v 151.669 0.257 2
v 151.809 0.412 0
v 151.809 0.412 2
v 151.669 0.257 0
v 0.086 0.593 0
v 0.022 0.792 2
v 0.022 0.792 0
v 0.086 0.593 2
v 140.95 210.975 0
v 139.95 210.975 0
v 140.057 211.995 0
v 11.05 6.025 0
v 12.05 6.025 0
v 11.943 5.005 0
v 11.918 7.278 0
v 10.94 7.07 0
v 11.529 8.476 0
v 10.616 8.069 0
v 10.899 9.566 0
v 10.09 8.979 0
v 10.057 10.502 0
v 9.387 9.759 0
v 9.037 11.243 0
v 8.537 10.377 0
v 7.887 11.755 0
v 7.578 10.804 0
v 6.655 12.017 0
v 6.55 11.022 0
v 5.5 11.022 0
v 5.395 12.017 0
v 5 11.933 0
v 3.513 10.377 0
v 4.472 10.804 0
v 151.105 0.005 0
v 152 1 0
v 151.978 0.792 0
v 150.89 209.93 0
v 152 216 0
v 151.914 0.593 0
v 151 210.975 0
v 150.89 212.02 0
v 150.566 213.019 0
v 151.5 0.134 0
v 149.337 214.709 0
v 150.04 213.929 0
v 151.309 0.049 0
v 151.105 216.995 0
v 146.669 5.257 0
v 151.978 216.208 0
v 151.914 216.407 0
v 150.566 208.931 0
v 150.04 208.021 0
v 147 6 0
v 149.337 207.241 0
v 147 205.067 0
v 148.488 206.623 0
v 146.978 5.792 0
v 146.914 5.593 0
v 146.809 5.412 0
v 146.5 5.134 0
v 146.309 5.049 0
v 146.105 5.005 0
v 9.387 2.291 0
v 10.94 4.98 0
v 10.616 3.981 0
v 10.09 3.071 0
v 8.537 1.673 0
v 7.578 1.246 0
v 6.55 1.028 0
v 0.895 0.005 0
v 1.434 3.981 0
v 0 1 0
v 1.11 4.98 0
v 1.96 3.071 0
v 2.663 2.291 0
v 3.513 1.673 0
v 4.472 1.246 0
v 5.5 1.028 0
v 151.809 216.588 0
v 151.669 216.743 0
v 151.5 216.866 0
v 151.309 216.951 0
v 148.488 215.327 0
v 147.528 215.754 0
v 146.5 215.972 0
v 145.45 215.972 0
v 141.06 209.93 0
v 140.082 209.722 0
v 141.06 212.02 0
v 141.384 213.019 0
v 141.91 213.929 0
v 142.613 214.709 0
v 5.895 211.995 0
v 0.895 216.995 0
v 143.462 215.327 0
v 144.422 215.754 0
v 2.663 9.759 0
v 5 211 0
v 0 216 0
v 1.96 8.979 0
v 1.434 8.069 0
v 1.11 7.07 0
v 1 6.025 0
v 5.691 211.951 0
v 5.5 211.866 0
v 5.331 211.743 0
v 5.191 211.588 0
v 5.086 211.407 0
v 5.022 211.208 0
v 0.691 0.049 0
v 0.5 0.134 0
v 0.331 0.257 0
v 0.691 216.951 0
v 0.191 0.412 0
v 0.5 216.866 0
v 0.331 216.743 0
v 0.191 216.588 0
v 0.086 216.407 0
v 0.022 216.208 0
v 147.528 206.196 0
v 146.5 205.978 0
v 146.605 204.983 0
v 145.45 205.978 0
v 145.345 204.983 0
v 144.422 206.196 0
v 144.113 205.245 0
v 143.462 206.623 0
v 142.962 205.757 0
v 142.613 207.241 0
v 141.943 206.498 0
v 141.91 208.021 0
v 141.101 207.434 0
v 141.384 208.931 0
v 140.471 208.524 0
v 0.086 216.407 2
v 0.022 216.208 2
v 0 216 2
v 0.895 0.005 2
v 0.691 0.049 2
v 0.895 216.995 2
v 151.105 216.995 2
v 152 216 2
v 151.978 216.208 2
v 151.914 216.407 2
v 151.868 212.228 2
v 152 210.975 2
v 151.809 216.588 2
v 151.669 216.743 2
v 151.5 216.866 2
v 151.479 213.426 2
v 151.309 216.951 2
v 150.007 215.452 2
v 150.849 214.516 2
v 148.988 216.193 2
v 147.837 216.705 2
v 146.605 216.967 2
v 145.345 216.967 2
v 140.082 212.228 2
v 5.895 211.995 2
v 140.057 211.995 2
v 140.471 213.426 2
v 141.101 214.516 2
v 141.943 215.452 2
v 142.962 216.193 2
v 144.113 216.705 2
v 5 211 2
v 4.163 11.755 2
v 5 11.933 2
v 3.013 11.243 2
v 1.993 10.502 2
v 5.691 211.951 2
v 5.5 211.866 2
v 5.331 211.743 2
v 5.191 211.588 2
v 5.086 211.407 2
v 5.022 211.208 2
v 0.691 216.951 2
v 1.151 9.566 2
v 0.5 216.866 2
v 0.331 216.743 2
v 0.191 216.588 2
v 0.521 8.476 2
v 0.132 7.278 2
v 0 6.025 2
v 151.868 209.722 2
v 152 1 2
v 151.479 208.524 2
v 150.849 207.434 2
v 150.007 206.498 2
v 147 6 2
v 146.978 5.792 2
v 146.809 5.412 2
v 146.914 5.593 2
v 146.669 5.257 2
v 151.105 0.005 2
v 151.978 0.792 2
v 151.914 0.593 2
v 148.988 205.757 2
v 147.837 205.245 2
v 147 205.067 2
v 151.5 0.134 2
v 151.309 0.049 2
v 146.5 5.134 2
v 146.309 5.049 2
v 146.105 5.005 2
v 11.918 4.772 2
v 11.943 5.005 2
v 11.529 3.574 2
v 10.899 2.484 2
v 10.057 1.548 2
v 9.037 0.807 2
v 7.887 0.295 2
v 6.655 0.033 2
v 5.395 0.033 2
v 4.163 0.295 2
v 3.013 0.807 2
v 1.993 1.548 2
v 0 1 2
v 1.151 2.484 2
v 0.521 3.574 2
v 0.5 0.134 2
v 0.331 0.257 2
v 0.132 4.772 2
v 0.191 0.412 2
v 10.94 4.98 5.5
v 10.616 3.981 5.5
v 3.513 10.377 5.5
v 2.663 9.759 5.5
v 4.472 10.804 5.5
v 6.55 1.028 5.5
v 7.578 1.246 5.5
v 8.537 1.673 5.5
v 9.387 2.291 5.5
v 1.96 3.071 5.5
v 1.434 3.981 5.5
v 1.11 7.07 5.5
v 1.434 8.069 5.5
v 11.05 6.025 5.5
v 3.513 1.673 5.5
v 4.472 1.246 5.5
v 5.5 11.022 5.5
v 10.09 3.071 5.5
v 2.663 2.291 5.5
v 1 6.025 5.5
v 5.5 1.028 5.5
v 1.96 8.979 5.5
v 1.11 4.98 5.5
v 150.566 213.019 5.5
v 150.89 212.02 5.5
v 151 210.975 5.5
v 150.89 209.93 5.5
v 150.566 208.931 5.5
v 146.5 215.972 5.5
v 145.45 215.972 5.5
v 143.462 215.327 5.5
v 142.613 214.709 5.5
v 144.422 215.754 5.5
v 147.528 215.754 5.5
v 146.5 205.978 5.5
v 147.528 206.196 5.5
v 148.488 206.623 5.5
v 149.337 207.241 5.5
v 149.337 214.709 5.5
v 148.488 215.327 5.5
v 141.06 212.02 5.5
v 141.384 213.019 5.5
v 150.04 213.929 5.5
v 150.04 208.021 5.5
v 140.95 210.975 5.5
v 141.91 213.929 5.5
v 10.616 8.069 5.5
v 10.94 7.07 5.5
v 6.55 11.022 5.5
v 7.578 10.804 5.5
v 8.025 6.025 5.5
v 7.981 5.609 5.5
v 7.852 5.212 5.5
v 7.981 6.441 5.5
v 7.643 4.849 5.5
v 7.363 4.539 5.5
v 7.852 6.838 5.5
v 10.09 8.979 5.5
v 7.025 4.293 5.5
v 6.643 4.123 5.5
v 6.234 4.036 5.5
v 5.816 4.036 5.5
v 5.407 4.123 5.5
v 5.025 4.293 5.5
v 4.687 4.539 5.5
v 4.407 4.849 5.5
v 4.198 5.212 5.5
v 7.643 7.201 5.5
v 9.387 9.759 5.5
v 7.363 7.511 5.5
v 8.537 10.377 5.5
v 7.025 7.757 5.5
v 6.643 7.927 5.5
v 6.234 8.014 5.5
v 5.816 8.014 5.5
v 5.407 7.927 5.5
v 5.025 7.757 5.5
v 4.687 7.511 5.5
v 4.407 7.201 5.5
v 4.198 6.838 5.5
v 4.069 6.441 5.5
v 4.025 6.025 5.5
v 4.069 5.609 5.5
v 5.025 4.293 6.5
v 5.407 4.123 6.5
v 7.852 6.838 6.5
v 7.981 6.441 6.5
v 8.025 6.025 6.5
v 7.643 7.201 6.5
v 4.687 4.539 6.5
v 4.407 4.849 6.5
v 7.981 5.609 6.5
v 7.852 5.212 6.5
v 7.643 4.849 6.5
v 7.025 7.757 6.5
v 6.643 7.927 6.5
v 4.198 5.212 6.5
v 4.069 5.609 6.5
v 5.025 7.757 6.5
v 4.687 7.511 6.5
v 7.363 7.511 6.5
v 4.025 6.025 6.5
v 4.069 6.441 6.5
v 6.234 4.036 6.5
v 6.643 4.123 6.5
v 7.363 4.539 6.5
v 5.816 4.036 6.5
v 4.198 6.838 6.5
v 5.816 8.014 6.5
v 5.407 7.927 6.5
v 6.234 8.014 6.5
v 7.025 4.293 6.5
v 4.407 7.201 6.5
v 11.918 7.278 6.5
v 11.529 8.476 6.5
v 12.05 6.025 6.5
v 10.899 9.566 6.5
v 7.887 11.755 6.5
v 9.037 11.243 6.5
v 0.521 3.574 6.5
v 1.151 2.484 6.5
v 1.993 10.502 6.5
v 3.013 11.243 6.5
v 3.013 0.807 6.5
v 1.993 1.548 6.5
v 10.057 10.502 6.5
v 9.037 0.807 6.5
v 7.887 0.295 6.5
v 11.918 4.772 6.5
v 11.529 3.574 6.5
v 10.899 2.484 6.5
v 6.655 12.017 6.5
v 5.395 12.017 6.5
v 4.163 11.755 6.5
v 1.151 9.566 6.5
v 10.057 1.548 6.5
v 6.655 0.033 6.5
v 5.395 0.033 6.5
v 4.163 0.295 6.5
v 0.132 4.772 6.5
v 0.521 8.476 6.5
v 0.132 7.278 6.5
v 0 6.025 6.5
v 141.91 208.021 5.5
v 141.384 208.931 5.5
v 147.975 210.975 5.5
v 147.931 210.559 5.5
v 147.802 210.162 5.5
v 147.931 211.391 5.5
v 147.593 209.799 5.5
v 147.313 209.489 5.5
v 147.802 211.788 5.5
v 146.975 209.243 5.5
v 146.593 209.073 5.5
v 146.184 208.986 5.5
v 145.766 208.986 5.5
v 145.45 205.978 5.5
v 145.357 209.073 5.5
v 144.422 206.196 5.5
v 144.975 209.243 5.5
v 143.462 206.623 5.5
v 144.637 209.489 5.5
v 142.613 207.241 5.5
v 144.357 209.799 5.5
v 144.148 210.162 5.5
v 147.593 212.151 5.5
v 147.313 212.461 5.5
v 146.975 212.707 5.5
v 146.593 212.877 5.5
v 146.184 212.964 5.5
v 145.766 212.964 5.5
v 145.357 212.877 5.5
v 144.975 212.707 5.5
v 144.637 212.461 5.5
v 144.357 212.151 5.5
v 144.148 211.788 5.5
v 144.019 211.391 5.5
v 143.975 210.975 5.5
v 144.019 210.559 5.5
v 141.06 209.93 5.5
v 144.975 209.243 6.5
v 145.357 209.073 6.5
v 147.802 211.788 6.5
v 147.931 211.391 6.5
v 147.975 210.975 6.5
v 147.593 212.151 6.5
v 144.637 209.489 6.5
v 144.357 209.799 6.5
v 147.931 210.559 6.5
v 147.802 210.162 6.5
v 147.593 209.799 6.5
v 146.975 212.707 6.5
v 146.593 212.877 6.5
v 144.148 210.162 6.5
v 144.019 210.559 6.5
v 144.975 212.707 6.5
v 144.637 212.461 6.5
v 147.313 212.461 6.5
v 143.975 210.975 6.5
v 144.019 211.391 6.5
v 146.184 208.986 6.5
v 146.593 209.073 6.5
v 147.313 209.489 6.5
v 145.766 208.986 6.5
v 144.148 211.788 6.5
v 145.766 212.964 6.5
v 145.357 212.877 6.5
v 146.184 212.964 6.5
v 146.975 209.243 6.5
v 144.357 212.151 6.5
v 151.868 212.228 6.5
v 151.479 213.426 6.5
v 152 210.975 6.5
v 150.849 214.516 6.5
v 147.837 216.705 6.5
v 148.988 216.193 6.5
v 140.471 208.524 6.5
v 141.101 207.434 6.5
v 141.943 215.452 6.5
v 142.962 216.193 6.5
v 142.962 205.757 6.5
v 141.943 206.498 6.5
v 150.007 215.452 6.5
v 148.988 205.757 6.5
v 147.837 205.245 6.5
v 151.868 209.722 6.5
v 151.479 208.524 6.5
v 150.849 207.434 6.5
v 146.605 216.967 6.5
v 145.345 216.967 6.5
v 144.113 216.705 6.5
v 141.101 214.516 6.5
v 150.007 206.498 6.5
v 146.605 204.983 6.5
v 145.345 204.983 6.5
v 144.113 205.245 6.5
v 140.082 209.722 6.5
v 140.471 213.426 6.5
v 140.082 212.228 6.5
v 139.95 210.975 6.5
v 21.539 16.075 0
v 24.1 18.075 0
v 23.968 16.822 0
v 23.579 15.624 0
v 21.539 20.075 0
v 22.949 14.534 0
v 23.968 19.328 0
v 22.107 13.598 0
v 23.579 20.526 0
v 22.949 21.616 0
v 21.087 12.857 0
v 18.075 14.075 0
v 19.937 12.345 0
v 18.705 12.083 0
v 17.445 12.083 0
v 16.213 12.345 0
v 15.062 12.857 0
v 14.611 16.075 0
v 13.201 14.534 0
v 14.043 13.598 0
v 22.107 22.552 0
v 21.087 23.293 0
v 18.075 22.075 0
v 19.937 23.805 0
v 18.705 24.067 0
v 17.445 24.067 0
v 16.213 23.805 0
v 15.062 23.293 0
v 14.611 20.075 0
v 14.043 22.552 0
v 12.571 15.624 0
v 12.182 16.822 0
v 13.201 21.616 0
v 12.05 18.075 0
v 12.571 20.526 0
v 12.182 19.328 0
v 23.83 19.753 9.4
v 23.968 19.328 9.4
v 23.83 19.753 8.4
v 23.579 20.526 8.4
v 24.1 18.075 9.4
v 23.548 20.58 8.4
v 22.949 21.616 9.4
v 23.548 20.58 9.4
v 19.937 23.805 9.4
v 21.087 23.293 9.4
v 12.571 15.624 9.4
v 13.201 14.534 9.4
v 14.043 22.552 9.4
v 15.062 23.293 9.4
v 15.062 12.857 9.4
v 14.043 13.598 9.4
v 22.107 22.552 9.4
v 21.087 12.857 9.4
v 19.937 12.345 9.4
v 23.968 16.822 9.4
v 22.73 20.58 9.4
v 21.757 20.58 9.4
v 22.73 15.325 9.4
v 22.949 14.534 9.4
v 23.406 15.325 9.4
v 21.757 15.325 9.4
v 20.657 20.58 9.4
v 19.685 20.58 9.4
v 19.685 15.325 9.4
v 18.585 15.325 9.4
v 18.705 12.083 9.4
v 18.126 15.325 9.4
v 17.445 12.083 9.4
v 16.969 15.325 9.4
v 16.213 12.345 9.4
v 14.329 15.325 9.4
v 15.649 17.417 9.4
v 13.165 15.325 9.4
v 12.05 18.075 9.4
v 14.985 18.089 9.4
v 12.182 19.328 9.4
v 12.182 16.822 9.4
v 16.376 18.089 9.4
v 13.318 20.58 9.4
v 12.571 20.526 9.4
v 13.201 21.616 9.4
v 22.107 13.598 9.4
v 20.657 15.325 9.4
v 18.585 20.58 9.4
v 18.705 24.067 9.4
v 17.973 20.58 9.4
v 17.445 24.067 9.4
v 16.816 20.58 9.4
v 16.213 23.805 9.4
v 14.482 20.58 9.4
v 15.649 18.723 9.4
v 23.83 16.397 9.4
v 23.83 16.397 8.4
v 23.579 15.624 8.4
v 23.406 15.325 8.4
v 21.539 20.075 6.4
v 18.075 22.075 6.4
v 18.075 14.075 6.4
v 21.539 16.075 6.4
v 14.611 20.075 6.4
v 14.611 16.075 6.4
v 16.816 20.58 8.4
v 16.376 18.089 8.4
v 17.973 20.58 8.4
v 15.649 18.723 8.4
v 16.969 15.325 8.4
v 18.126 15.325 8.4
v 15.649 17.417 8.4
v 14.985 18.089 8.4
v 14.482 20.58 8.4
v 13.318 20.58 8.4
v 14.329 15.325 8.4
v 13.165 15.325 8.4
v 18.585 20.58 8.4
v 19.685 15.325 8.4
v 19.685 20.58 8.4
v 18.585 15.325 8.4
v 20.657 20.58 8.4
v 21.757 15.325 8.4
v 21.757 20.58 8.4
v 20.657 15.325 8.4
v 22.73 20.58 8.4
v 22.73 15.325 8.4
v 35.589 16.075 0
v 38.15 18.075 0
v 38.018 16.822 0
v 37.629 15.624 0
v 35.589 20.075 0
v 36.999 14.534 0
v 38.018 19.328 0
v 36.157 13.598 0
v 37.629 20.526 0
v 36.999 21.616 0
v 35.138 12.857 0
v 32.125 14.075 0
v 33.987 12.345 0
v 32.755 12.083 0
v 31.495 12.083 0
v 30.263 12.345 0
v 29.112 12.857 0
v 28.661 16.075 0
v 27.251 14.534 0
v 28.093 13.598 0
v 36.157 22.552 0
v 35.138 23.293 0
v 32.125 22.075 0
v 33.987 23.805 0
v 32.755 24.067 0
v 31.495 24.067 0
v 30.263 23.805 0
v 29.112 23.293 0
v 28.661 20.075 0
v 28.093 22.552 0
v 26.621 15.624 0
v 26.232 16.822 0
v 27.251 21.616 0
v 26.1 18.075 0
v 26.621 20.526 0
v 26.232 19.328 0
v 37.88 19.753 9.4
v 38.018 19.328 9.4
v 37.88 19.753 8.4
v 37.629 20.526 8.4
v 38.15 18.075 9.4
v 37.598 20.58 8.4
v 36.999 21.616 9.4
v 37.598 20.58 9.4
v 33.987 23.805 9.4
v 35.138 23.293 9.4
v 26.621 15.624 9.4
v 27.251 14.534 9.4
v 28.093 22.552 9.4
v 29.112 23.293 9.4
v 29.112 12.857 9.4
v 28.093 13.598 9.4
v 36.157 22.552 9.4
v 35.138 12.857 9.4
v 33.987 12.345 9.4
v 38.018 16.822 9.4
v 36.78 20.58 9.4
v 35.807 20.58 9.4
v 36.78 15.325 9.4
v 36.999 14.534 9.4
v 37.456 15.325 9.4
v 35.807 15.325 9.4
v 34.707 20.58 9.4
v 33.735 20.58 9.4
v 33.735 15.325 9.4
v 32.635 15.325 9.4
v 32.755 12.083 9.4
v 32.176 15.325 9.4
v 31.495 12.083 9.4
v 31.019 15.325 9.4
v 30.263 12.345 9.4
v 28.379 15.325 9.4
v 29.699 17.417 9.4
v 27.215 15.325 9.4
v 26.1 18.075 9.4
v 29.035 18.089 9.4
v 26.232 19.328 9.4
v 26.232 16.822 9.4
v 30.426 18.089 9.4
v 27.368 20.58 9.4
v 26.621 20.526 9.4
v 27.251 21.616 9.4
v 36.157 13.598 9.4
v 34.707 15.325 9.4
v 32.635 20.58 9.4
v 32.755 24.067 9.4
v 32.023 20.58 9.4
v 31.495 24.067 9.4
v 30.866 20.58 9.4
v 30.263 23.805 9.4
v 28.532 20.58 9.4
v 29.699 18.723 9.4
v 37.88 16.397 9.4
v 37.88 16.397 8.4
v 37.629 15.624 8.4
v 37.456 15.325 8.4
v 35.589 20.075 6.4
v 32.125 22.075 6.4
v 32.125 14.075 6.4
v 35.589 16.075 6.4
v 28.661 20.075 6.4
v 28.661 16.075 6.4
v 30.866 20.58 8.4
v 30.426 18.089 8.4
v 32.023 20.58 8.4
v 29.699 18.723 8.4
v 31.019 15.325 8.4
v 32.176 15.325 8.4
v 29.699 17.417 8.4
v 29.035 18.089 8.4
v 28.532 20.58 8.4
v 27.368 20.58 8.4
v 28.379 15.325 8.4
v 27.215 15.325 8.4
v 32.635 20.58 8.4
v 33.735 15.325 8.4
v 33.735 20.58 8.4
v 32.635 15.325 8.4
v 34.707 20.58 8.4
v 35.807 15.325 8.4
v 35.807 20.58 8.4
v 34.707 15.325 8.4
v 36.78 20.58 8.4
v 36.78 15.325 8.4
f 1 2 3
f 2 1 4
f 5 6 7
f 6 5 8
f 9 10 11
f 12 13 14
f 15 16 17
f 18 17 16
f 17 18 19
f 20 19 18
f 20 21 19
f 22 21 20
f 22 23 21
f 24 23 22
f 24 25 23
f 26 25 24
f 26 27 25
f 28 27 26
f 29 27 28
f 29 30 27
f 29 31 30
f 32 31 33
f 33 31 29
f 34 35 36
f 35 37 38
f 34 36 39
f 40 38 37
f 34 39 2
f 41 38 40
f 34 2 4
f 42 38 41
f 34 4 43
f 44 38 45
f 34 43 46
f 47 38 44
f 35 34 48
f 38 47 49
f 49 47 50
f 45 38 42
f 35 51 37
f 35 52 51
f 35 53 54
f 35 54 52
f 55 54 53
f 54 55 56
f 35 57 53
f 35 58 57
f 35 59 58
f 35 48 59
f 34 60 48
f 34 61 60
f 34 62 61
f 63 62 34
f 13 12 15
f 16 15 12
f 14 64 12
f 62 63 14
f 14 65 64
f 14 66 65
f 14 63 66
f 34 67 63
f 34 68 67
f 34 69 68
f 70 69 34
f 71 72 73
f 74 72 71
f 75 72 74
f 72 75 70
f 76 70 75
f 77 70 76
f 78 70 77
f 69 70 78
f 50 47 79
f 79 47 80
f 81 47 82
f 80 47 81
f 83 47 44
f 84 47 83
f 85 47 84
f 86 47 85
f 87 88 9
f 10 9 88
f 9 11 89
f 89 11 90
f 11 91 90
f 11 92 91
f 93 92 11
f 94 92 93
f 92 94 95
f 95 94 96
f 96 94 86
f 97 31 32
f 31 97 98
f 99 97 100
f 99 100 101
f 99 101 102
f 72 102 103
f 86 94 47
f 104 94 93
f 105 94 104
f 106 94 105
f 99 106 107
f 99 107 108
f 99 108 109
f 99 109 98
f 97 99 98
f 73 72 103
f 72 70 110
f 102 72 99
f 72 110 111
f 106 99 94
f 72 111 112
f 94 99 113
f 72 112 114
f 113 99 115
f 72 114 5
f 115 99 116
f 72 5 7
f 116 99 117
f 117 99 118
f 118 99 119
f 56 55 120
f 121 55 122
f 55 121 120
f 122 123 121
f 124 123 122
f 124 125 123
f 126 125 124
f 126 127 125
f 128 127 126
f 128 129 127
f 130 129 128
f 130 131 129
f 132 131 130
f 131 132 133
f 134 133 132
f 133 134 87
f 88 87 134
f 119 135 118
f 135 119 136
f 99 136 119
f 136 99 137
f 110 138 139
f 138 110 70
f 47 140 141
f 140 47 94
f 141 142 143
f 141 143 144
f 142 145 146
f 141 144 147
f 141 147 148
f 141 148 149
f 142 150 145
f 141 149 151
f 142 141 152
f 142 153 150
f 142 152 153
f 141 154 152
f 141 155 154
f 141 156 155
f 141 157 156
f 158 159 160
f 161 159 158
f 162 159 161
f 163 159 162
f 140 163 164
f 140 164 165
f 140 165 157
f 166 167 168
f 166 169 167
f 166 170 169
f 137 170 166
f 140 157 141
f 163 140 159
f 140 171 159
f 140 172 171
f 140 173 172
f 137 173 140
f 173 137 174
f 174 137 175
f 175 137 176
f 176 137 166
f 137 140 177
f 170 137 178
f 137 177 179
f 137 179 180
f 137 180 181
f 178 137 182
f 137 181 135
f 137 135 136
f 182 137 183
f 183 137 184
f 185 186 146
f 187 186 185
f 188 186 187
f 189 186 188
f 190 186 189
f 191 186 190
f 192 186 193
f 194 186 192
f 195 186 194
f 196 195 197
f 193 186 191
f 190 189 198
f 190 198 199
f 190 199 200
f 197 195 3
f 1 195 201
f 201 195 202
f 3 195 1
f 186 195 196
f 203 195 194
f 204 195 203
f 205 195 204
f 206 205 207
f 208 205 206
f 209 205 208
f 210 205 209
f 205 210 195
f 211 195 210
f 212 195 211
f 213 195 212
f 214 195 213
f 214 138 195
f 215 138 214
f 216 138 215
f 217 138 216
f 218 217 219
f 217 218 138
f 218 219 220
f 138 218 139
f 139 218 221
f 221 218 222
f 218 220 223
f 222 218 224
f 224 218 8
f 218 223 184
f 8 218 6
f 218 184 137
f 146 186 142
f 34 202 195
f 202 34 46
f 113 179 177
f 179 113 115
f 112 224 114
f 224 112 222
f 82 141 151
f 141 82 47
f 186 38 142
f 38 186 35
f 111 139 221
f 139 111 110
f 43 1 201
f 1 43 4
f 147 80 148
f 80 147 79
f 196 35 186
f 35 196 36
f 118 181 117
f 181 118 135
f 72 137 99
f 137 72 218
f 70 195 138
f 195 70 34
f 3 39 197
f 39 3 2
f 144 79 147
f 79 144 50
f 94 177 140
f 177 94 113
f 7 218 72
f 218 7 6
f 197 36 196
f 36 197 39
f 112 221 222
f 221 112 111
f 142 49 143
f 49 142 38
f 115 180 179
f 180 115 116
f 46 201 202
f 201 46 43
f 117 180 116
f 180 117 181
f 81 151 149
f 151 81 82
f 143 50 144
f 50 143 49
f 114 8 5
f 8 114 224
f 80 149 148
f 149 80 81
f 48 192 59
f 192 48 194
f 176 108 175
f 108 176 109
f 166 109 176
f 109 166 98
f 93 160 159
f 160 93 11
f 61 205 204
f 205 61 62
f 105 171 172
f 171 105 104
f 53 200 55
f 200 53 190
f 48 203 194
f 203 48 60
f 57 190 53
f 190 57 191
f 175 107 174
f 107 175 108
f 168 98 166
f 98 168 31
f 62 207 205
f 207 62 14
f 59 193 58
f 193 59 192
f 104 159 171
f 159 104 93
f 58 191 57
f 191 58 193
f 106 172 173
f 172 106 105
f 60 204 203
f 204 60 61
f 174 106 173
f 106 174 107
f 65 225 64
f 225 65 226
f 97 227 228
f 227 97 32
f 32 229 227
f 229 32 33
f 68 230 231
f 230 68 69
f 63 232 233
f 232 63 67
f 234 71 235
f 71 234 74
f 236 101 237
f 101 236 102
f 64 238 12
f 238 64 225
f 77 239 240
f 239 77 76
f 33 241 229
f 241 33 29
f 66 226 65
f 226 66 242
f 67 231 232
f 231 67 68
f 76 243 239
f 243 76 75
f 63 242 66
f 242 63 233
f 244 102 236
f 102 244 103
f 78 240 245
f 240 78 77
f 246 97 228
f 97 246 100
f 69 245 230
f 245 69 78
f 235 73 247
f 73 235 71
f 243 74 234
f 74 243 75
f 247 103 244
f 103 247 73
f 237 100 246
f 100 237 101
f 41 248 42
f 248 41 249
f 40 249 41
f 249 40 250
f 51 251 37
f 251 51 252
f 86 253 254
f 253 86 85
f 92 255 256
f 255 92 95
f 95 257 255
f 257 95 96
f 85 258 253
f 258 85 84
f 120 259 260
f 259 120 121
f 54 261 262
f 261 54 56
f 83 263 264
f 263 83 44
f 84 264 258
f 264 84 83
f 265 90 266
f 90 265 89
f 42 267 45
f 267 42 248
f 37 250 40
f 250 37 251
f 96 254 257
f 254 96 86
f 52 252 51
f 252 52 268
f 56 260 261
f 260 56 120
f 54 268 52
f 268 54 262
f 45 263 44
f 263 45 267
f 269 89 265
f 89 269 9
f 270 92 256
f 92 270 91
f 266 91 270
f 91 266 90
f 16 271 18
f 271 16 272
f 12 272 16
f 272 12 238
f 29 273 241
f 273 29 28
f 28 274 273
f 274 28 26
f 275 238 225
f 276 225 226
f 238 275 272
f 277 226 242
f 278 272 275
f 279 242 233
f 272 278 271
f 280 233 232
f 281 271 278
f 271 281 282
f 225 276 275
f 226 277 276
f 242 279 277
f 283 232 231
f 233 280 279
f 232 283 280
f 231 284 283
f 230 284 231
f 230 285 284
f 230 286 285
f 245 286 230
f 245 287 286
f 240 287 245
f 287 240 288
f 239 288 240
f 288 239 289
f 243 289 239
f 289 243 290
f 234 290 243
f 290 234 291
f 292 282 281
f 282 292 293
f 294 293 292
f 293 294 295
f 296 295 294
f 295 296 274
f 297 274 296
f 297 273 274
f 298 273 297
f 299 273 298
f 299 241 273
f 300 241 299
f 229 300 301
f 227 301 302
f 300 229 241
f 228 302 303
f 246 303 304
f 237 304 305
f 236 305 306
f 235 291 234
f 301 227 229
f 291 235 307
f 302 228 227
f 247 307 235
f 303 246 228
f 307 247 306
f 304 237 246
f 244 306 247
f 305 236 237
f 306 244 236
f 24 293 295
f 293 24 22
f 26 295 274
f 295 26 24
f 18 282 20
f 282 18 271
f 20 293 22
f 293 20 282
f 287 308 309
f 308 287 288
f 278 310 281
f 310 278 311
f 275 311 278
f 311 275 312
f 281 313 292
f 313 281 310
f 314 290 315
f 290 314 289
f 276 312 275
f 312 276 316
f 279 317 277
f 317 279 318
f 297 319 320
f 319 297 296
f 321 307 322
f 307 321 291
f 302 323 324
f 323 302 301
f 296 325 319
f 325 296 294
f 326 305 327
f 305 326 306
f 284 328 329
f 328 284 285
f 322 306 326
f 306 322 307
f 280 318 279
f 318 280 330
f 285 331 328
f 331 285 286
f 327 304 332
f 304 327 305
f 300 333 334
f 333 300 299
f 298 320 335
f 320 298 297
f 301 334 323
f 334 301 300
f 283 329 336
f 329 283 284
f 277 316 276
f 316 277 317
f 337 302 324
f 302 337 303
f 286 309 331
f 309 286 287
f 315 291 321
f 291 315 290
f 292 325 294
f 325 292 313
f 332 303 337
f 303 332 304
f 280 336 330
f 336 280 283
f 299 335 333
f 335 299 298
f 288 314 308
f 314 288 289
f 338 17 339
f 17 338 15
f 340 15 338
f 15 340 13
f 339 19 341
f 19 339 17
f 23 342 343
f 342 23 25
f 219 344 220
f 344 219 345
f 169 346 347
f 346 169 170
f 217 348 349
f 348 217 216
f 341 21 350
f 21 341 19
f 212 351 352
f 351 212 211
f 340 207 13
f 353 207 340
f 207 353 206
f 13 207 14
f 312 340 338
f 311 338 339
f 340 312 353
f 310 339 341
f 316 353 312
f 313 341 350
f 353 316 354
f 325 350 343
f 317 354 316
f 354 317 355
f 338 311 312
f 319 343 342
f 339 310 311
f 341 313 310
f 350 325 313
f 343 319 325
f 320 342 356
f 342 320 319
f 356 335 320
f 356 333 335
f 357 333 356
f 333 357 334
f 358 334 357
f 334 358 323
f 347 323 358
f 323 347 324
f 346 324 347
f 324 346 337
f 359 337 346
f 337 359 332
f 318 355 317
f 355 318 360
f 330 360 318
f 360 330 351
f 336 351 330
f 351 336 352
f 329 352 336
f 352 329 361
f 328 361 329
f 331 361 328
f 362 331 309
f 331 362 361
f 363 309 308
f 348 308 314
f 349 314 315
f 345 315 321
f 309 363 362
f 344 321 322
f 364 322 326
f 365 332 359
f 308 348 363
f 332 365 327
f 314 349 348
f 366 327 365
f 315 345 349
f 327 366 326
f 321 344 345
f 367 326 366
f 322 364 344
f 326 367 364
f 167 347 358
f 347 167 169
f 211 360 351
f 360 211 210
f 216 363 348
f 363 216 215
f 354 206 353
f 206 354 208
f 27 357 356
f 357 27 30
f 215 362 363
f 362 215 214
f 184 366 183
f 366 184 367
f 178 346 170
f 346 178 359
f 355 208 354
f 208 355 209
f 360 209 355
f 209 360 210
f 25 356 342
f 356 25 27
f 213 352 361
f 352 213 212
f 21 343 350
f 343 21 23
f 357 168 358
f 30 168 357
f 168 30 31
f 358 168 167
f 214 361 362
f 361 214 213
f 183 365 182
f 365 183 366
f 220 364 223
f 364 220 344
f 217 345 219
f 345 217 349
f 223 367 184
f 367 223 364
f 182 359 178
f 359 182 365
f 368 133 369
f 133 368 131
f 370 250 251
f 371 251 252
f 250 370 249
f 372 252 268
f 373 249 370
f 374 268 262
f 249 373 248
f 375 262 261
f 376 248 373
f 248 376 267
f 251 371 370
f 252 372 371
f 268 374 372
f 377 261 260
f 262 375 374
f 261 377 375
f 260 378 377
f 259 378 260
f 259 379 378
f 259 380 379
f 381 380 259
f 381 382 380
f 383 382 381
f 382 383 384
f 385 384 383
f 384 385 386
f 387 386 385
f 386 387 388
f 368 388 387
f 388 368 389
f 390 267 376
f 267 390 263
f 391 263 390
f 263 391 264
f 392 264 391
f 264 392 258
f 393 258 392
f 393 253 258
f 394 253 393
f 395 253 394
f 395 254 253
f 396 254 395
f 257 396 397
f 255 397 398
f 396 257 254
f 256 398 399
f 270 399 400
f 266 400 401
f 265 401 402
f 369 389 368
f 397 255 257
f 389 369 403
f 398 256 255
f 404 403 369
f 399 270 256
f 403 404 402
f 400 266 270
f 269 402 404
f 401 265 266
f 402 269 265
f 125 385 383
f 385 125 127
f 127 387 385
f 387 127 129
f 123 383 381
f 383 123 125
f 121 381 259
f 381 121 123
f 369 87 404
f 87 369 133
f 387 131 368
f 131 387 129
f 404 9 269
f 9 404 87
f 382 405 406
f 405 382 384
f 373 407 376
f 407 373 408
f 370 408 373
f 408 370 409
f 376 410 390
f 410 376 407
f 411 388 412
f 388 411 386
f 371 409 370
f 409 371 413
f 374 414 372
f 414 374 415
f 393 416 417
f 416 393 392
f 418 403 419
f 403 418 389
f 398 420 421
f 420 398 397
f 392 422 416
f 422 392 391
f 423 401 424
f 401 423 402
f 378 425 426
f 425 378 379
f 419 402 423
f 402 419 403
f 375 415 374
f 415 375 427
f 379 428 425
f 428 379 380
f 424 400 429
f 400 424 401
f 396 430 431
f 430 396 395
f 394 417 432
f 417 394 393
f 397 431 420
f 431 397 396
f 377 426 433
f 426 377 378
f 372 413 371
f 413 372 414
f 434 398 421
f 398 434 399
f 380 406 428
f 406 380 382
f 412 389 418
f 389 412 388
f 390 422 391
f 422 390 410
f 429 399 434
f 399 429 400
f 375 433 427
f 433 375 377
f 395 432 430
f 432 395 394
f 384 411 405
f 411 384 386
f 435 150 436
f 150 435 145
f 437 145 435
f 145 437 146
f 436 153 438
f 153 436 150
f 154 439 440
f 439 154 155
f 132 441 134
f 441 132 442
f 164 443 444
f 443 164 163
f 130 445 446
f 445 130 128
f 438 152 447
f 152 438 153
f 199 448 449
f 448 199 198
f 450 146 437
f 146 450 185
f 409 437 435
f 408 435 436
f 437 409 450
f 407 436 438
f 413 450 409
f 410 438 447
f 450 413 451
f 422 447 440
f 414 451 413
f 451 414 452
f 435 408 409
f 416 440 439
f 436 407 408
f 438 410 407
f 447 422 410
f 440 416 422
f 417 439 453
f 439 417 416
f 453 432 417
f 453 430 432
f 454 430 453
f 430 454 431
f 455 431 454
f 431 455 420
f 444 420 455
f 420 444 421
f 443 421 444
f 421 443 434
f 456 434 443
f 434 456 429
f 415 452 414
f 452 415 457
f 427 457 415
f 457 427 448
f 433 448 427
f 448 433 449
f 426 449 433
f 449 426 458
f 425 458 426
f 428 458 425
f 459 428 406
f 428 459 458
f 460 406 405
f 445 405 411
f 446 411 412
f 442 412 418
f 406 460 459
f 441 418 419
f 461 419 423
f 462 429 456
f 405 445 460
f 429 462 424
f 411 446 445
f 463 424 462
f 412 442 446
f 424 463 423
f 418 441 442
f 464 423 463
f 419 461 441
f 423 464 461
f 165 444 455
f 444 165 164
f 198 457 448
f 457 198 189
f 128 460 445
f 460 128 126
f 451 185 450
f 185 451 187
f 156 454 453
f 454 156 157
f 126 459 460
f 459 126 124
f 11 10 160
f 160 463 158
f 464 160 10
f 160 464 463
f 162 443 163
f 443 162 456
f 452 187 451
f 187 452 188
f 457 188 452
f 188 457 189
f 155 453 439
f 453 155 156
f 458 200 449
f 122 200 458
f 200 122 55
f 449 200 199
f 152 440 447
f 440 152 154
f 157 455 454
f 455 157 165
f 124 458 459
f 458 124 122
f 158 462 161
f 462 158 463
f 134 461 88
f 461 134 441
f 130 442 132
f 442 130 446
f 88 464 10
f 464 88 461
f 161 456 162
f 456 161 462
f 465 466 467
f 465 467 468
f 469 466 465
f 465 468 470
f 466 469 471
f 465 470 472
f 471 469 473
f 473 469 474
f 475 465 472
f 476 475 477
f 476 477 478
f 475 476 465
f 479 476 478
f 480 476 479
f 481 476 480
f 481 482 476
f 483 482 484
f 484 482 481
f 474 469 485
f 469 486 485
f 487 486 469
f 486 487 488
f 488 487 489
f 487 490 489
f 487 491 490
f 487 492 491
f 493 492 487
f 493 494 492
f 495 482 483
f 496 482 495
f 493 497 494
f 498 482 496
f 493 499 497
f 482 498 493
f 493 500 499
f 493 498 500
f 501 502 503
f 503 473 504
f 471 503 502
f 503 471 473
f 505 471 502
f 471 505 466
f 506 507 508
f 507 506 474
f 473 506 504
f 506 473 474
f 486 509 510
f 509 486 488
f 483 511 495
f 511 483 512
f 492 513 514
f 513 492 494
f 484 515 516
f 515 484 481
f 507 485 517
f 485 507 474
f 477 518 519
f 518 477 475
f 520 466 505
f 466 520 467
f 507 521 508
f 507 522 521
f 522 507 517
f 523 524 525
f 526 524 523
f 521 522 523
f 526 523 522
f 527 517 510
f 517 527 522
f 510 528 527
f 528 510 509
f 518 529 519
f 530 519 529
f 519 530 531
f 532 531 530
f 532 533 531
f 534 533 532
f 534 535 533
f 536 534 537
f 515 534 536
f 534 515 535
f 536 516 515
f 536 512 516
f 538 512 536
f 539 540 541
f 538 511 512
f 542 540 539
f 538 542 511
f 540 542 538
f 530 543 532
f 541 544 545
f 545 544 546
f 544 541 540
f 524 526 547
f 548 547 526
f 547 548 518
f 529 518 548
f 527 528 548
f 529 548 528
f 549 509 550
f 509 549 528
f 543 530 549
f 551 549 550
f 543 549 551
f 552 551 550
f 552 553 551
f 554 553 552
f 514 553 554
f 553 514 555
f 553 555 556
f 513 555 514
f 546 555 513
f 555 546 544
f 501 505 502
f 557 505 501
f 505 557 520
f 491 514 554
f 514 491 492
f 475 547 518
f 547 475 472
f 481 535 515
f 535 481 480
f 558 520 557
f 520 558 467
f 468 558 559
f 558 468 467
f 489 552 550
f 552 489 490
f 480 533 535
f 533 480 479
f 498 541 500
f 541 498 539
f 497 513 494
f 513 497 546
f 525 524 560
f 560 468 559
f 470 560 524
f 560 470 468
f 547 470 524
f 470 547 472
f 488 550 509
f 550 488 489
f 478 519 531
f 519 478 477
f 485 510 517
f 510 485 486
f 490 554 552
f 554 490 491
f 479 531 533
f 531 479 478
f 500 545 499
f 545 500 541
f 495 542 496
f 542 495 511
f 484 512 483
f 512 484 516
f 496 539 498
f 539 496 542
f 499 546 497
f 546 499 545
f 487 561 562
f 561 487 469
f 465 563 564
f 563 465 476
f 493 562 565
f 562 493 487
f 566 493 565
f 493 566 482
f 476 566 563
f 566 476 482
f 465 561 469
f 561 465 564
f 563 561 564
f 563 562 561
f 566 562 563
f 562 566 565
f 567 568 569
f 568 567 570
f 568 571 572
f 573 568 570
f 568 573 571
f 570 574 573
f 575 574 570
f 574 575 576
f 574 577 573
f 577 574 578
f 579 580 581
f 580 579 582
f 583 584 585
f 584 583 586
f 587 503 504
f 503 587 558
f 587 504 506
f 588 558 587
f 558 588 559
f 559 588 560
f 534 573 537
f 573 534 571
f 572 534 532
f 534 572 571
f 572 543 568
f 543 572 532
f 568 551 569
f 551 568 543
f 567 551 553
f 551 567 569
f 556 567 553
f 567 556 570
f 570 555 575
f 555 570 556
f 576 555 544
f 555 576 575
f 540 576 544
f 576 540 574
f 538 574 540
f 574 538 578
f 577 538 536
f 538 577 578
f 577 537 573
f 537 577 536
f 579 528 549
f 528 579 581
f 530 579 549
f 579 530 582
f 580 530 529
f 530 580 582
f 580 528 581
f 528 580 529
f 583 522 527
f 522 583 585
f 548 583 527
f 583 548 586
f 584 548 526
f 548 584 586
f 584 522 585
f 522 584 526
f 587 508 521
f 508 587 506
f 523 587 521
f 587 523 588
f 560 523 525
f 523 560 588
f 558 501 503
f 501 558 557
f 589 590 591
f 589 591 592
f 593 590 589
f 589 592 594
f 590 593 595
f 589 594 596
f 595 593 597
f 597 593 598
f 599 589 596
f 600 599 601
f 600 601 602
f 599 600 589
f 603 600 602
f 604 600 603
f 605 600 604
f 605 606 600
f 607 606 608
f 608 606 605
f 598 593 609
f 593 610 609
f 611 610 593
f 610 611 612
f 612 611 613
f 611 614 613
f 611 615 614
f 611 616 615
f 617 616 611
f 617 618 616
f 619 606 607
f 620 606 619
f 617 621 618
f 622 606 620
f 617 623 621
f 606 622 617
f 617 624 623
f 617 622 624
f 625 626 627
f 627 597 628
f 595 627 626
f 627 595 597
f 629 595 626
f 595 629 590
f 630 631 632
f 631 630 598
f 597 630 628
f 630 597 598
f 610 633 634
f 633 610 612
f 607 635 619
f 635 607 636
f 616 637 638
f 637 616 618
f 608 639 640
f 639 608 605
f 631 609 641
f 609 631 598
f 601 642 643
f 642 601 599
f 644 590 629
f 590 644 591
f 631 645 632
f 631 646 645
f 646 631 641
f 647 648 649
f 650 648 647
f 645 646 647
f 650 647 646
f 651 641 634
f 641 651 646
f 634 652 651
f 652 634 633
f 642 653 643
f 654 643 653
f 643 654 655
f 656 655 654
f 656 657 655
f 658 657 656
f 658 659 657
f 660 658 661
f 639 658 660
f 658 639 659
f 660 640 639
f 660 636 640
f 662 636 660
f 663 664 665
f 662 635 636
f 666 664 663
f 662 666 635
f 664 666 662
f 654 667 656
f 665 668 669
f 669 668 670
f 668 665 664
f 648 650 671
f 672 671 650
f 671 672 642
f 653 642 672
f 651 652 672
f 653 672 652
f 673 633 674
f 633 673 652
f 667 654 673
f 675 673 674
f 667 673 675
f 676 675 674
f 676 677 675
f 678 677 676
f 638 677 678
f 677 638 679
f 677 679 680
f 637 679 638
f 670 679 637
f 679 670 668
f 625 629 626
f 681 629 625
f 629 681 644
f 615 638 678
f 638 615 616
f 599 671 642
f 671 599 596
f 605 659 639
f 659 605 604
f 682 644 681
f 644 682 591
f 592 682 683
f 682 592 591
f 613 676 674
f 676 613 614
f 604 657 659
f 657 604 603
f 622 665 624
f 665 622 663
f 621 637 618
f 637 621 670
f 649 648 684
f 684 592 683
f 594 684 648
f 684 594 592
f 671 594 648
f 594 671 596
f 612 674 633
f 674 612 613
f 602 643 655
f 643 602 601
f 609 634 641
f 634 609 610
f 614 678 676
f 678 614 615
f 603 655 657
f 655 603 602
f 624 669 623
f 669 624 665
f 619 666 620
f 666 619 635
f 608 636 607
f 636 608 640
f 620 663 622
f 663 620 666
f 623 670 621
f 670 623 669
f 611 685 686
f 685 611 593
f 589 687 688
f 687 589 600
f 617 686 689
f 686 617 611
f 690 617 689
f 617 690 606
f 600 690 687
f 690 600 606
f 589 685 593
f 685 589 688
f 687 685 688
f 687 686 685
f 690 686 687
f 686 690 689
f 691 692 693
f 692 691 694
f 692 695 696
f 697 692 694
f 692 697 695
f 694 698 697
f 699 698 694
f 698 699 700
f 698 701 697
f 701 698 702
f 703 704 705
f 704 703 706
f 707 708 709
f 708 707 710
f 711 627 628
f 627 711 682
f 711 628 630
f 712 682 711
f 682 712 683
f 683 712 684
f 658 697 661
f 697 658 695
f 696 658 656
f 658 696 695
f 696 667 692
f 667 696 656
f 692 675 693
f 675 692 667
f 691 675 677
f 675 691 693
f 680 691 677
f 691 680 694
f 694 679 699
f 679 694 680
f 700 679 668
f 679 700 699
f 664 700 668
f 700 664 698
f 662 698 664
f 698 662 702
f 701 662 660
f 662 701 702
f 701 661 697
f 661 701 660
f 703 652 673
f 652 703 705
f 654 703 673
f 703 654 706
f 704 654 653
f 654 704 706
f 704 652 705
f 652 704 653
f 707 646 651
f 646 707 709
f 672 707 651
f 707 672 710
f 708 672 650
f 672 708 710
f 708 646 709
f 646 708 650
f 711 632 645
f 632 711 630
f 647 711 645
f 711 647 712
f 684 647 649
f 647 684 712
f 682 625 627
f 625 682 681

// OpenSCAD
frame_width     = 152;
frame_height    = 217;
frame_thickness = 5;

wall      = 2;
thickness = 2;

magnet_height1 =  4.5;
magnet_height2 = 12.5;
magnet_diam    = 10.05;
screw_height   = magnet_height2-magnet_height1;
screw_diam     =  4;
nut_height     =  3.2;
nut_diam       =  8;
number_depth   =  1;
number_size    =  5.5;
nut_radius     =  0.5 * nut_diam;
$fn            = 30;

module screw() {
    cylinder( d = screw_diam, h = screw_height );
}

module magnet() {
    cylinder( d = magnet_diam, h = magnet_height1+2 );
    translate([0, 0, magnet_height1]) screw();
}

module magnet_case() {
    difference() {
        cylinder( d = magnet_diam+wall, h = magnet_height1+wall);
        translate([0, 0, -1]) magnet();
    }
}


module hexagon(radius) {
    polygon(
        points = [
            [radius * sin(0*60), radius * cos(0*60)],
            [radius * sin(1*60), radius * cos(1*60)],
            [radius * sin(2*60), radius * cos(2*60)],
            [radius * sin(3*60), radius * cos(3*60)],
            [radius * sin(4*60), radius * cos(4*60)],
            [radius * sin(5*60), radius * cos(5*60)]
        ]
    );
}

module nut(radius, height) {
    linear_extrude(height) {
        hexagon(radius);
    };
}

module nut_case() {
    difference() {
        cylinder( d = magnet_diam+wall, h = 2*nut_height+wall+number_depth);
        translate([0, 0, -1])
            nut(nut_radius, nut_height+1);
        translate([0, 0, nut_height])
            nut(nut_radius, nut_height);
    }
}

module number_plate (num) {
    linear_extrude( number_depth+1 ) {
        text(num, size = number_size, font="Liberation Sans:style=Bold");
    }
}

module number(num) {
    difference() {
        translate([
            0.5*(magnet_diam+wall),
            0.5*(magnet_diam+wall),
            0
        ]) nut_case();
        translate([
            0.16*(magnet_diam+wall-number_size),
            0.5*(magnet_diam+wall-number_size),
            2*nut_height+wall
        ]) number_plate(num);
    }
}

module plate(plate_width, plate_height, plate_thickness) {
    hull() {
        translate( [
            0 * plate_width  + 0.5 * wall,
            0 * plate_height + 0.5 * wall,
            0 ] )
            cylinder(d = wall, h = plate_thickness);
        translate( [
            1 * plate_width  - 0.5 * wall,
            0 * plate_height + 0.5 * wall,
            0 ] )
            cylinder(d = wall, h = plate_thickness);
        translate( [
            0 * plate_width  + 0.5 * wall,
            1 * plate_height - 0.5 * wall,
            0 ] )
            cylinder(d = wall, h = plate_thickness);
        translate( [
            1 * plate_width  - 0.5 * wall,
            1 * plate_height - 0.5 * wall,
            0 ] )
            cylinder(d = wall, h = plate_thickness);
    }
}

module frame() {
    difference() {
        plate(frame_width, frame_height, thickness);
        
        translate( [ frame_thickness, frame_thickness, -1 ] ) 
        plate(frame_width - 2*frame_thickness, frame_height - 2*frame_thickness, thickness+3);
    }
}


difference() {
    frame();

    translate([0.5*(magnet_diam+wall), 0.5*(magnet_diam+wall), 0]) magnet();
    translate([frame_width-0.5*(magnet_diam+wall), frame_height-0.5*(magnet_diam+wall), 0]) magnet();
}

translate([0.5*(magnet_diam+wall), 0.5*(magnet_diam+wall), 0]) magnet_case();
translate([frame_width-0.5*(magnet_diam+wall), frame_height-0.5*(magnet_diam+wall), 0]) magnet_case();

translate([magnet_diam+wall, magnet_diam+wall, 0])
    number("XIII");

translate([2*magnet_diam+3*wall, magnet_diam+wall, 0])
    number("XIII");
